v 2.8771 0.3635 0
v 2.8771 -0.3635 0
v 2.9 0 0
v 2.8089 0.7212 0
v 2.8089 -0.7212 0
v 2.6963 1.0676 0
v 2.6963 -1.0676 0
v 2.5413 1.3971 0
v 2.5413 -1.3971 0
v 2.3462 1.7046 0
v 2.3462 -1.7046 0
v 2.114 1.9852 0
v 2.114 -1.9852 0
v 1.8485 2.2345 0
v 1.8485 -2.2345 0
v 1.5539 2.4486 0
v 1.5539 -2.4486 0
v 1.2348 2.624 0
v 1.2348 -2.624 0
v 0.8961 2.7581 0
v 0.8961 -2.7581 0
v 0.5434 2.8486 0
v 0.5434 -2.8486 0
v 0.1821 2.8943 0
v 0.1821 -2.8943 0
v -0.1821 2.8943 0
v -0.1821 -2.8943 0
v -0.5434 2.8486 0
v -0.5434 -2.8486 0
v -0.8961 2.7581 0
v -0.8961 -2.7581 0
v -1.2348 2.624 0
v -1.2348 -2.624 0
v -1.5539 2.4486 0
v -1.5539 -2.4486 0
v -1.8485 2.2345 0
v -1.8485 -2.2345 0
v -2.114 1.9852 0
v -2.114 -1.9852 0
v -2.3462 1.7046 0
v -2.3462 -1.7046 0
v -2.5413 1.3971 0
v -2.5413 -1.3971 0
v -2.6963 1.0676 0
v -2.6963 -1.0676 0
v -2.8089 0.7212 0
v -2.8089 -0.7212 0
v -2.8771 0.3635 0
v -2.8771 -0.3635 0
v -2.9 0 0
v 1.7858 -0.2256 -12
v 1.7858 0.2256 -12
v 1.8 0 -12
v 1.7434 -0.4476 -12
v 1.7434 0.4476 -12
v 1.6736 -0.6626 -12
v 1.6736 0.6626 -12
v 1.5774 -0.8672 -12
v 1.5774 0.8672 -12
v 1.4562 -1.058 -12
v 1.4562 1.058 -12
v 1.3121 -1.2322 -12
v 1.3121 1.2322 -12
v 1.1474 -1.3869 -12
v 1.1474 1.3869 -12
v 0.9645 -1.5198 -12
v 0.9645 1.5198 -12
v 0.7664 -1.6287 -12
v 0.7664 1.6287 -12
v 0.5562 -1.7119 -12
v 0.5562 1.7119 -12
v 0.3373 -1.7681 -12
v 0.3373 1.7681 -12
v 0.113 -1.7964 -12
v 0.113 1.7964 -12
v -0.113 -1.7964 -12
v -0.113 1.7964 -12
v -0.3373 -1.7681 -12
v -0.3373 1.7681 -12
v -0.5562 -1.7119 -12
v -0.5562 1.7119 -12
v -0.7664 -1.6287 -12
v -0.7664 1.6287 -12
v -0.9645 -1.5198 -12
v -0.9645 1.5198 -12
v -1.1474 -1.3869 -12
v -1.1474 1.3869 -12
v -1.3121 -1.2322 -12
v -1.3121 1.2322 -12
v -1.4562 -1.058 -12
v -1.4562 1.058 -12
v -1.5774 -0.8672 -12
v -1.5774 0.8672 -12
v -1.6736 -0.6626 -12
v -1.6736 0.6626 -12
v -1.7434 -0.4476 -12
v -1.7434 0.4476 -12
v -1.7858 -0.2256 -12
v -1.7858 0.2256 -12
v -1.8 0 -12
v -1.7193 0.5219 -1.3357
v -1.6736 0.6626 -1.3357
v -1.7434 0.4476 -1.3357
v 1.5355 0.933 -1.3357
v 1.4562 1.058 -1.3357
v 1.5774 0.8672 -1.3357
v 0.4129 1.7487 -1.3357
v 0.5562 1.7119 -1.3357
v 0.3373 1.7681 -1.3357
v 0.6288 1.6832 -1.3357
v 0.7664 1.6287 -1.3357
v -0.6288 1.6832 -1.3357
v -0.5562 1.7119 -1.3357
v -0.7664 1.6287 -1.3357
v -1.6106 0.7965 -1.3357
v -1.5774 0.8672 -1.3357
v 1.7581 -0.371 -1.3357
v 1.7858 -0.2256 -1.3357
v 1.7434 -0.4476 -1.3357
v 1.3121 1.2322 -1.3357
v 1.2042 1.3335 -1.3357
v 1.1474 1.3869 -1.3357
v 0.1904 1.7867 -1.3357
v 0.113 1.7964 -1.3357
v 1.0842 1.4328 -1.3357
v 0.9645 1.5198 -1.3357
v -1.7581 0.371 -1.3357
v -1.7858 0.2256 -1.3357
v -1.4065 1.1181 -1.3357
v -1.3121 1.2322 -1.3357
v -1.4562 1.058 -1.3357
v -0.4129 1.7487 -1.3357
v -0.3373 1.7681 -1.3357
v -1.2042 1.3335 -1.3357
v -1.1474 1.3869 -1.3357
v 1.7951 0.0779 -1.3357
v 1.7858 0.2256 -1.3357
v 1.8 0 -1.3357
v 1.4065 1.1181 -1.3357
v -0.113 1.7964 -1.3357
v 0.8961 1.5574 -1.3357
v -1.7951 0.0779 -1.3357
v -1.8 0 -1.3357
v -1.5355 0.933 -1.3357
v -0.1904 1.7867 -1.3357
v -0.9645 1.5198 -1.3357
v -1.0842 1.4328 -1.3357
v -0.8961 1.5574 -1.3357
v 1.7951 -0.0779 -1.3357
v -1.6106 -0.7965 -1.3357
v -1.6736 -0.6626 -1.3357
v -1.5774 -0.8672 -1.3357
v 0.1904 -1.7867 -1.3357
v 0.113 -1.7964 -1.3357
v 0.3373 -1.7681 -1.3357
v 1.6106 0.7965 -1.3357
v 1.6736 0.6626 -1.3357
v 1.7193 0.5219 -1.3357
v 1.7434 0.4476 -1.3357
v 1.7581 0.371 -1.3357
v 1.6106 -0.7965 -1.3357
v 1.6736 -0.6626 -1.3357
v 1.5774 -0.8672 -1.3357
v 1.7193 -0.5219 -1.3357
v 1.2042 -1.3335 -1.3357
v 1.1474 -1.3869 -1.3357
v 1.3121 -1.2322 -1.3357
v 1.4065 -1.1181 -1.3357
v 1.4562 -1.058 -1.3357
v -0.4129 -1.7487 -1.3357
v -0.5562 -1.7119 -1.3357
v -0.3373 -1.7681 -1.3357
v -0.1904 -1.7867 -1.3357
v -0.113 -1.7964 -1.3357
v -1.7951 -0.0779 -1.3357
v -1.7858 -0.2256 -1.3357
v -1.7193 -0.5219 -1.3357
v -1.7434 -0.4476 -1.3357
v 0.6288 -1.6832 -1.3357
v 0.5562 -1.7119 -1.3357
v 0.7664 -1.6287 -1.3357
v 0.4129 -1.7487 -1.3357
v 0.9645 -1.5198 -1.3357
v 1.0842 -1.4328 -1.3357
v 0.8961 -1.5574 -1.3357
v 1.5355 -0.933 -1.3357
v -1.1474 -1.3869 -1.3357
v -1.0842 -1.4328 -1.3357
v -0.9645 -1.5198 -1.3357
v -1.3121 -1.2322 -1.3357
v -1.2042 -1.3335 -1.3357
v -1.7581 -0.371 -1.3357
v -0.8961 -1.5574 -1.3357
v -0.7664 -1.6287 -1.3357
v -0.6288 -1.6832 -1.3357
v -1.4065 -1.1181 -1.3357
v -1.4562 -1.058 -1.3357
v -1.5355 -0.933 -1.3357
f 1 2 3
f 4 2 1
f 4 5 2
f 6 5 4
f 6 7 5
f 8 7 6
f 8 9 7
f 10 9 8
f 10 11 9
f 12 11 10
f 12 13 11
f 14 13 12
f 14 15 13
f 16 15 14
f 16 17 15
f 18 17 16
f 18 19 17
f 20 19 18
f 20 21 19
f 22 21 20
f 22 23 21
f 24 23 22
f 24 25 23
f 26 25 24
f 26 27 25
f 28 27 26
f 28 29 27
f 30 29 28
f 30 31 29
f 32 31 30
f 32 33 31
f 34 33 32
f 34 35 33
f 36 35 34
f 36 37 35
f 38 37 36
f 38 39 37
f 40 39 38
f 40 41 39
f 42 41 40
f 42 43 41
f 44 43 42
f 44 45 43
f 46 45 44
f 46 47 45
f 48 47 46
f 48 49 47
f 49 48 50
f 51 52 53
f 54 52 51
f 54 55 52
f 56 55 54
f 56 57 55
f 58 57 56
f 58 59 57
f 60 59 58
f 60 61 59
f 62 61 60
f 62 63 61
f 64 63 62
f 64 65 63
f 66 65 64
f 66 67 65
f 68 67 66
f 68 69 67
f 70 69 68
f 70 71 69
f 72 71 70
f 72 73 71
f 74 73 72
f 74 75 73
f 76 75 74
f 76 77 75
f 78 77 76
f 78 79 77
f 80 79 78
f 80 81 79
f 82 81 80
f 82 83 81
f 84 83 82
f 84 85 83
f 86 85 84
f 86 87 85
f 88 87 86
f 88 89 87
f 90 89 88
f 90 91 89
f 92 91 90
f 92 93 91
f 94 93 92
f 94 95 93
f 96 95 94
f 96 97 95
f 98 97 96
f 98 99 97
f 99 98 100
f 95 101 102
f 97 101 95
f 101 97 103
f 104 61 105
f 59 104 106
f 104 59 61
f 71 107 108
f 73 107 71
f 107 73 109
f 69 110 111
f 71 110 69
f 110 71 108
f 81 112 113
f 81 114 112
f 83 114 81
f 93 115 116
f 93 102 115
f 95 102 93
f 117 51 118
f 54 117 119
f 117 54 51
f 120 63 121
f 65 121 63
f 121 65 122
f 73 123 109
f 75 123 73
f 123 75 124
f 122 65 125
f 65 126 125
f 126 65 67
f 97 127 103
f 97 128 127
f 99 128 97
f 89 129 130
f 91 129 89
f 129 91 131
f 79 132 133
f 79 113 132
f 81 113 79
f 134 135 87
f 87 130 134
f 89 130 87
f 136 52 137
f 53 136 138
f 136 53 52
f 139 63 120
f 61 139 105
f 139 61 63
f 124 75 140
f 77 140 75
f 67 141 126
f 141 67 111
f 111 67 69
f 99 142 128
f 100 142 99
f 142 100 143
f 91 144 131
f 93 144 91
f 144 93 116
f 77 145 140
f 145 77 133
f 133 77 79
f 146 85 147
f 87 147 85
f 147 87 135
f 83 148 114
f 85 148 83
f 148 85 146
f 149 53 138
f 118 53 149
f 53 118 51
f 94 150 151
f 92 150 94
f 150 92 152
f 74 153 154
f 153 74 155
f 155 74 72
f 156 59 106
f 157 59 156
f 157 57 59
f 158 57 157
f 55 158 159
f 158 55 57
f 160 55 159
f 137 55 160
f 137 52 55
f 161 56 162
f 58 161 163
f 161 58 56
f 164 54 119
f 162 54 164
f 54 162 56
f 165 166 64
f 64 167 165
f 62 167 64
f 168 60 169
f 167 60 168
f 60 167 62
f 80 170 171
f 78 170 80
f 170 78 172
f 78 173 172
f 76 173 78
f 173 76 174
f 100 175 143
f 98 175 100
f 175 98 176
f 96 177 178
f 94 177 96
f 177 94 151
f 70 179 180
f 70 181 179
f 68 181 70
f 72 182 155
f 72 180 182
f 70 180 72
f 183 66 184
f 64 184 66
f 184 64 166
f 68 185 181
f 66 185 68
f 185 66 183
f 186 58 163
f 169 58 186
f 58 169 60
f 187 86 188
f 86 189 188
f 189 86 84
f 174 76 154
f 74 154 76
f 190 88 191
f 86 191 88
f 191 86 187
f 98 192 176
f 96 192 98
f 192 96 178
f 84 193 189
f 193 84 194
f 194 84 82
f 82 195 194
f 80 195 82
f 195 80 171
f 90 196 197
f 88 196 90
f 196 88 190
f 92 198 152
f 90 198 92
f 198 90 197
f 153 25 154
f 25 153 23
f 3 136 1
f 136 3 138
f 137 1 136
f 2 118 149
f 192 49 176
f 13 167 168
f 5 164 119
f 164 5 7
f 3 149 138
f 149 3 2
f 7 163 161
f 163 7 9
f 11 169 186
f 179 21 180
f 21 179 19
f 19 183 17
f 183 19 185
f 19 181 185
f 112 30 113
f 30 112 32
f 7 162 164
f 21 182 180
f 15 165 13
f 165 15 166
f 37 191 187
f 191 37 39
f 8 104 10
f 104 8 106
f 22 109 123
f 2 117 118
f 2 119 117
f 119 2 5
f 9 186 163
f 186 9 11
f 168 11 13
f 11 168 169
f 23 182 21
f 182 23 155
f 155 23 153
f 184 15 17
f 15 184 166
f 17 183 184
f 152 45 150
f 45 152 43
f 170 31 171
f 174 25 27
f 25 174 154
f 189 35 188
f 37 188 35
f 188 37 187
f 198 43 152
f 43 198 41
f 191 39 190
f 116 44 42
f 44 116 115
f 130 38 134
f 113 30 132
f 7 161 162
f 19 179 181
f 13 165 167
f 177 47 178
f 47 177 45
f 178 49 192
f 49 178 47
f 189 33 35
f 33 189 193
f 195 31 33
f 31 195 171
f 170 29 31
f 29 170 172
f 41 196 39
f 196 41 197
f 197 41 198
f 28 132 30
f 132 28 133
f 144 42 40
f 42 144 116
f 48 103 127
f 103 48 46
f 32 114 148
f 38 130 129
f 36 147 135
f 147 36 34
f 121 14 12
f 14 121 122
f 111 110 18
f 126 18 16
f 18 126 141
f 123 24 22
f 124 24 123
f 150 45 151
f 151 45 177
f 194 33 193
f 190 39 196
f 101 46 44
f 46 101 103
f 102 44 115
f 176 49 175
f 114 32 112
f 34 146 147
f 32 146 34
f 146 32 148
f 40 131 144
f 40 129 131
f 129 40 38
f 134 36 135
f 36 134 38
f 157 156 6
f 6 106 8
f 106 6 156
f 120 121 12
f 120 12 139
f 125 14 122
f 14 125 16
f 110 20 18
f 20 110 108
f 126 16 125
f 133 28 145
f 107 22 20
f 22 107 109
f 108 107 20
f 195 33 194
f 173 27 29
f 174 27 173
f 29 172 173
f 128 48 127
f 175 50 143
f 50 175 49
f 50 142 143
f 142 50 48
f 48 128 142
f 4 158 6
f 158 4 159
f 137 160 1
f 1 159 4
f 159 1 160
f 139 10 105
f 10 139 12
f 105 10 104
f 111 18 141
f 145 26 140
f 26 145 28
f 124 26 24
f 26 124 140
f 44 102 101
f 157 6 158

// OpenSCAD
$fn = 50;


difference() {
	union() {
		translate(v = [0, 0, 0]) {
			rotate(a = [0, 0, 0]) {
				difference() {
					union() {
						translate(v = [0, 0, -12.0000000000]) {
							cylinder(h = 12, r = 1.5000000000);
						}
						translate(v = [0, 0, -12.0000000000]) {
							cylinder(h = 12, r = 1.8000000000);
						}
						translate(v = [0, 0, -1.7000000000]) {
							cylinder(h = 1.7000000000, r1 = 1.5000000000, r2 = 2.9000000000);
						}
						translate(v = [0, 0, -12.0000000000]) {
							cylinder(h = 12, r = 1.5000000000);
						}
					}
					union();
				}
			}
		}
	}
	union();
}
